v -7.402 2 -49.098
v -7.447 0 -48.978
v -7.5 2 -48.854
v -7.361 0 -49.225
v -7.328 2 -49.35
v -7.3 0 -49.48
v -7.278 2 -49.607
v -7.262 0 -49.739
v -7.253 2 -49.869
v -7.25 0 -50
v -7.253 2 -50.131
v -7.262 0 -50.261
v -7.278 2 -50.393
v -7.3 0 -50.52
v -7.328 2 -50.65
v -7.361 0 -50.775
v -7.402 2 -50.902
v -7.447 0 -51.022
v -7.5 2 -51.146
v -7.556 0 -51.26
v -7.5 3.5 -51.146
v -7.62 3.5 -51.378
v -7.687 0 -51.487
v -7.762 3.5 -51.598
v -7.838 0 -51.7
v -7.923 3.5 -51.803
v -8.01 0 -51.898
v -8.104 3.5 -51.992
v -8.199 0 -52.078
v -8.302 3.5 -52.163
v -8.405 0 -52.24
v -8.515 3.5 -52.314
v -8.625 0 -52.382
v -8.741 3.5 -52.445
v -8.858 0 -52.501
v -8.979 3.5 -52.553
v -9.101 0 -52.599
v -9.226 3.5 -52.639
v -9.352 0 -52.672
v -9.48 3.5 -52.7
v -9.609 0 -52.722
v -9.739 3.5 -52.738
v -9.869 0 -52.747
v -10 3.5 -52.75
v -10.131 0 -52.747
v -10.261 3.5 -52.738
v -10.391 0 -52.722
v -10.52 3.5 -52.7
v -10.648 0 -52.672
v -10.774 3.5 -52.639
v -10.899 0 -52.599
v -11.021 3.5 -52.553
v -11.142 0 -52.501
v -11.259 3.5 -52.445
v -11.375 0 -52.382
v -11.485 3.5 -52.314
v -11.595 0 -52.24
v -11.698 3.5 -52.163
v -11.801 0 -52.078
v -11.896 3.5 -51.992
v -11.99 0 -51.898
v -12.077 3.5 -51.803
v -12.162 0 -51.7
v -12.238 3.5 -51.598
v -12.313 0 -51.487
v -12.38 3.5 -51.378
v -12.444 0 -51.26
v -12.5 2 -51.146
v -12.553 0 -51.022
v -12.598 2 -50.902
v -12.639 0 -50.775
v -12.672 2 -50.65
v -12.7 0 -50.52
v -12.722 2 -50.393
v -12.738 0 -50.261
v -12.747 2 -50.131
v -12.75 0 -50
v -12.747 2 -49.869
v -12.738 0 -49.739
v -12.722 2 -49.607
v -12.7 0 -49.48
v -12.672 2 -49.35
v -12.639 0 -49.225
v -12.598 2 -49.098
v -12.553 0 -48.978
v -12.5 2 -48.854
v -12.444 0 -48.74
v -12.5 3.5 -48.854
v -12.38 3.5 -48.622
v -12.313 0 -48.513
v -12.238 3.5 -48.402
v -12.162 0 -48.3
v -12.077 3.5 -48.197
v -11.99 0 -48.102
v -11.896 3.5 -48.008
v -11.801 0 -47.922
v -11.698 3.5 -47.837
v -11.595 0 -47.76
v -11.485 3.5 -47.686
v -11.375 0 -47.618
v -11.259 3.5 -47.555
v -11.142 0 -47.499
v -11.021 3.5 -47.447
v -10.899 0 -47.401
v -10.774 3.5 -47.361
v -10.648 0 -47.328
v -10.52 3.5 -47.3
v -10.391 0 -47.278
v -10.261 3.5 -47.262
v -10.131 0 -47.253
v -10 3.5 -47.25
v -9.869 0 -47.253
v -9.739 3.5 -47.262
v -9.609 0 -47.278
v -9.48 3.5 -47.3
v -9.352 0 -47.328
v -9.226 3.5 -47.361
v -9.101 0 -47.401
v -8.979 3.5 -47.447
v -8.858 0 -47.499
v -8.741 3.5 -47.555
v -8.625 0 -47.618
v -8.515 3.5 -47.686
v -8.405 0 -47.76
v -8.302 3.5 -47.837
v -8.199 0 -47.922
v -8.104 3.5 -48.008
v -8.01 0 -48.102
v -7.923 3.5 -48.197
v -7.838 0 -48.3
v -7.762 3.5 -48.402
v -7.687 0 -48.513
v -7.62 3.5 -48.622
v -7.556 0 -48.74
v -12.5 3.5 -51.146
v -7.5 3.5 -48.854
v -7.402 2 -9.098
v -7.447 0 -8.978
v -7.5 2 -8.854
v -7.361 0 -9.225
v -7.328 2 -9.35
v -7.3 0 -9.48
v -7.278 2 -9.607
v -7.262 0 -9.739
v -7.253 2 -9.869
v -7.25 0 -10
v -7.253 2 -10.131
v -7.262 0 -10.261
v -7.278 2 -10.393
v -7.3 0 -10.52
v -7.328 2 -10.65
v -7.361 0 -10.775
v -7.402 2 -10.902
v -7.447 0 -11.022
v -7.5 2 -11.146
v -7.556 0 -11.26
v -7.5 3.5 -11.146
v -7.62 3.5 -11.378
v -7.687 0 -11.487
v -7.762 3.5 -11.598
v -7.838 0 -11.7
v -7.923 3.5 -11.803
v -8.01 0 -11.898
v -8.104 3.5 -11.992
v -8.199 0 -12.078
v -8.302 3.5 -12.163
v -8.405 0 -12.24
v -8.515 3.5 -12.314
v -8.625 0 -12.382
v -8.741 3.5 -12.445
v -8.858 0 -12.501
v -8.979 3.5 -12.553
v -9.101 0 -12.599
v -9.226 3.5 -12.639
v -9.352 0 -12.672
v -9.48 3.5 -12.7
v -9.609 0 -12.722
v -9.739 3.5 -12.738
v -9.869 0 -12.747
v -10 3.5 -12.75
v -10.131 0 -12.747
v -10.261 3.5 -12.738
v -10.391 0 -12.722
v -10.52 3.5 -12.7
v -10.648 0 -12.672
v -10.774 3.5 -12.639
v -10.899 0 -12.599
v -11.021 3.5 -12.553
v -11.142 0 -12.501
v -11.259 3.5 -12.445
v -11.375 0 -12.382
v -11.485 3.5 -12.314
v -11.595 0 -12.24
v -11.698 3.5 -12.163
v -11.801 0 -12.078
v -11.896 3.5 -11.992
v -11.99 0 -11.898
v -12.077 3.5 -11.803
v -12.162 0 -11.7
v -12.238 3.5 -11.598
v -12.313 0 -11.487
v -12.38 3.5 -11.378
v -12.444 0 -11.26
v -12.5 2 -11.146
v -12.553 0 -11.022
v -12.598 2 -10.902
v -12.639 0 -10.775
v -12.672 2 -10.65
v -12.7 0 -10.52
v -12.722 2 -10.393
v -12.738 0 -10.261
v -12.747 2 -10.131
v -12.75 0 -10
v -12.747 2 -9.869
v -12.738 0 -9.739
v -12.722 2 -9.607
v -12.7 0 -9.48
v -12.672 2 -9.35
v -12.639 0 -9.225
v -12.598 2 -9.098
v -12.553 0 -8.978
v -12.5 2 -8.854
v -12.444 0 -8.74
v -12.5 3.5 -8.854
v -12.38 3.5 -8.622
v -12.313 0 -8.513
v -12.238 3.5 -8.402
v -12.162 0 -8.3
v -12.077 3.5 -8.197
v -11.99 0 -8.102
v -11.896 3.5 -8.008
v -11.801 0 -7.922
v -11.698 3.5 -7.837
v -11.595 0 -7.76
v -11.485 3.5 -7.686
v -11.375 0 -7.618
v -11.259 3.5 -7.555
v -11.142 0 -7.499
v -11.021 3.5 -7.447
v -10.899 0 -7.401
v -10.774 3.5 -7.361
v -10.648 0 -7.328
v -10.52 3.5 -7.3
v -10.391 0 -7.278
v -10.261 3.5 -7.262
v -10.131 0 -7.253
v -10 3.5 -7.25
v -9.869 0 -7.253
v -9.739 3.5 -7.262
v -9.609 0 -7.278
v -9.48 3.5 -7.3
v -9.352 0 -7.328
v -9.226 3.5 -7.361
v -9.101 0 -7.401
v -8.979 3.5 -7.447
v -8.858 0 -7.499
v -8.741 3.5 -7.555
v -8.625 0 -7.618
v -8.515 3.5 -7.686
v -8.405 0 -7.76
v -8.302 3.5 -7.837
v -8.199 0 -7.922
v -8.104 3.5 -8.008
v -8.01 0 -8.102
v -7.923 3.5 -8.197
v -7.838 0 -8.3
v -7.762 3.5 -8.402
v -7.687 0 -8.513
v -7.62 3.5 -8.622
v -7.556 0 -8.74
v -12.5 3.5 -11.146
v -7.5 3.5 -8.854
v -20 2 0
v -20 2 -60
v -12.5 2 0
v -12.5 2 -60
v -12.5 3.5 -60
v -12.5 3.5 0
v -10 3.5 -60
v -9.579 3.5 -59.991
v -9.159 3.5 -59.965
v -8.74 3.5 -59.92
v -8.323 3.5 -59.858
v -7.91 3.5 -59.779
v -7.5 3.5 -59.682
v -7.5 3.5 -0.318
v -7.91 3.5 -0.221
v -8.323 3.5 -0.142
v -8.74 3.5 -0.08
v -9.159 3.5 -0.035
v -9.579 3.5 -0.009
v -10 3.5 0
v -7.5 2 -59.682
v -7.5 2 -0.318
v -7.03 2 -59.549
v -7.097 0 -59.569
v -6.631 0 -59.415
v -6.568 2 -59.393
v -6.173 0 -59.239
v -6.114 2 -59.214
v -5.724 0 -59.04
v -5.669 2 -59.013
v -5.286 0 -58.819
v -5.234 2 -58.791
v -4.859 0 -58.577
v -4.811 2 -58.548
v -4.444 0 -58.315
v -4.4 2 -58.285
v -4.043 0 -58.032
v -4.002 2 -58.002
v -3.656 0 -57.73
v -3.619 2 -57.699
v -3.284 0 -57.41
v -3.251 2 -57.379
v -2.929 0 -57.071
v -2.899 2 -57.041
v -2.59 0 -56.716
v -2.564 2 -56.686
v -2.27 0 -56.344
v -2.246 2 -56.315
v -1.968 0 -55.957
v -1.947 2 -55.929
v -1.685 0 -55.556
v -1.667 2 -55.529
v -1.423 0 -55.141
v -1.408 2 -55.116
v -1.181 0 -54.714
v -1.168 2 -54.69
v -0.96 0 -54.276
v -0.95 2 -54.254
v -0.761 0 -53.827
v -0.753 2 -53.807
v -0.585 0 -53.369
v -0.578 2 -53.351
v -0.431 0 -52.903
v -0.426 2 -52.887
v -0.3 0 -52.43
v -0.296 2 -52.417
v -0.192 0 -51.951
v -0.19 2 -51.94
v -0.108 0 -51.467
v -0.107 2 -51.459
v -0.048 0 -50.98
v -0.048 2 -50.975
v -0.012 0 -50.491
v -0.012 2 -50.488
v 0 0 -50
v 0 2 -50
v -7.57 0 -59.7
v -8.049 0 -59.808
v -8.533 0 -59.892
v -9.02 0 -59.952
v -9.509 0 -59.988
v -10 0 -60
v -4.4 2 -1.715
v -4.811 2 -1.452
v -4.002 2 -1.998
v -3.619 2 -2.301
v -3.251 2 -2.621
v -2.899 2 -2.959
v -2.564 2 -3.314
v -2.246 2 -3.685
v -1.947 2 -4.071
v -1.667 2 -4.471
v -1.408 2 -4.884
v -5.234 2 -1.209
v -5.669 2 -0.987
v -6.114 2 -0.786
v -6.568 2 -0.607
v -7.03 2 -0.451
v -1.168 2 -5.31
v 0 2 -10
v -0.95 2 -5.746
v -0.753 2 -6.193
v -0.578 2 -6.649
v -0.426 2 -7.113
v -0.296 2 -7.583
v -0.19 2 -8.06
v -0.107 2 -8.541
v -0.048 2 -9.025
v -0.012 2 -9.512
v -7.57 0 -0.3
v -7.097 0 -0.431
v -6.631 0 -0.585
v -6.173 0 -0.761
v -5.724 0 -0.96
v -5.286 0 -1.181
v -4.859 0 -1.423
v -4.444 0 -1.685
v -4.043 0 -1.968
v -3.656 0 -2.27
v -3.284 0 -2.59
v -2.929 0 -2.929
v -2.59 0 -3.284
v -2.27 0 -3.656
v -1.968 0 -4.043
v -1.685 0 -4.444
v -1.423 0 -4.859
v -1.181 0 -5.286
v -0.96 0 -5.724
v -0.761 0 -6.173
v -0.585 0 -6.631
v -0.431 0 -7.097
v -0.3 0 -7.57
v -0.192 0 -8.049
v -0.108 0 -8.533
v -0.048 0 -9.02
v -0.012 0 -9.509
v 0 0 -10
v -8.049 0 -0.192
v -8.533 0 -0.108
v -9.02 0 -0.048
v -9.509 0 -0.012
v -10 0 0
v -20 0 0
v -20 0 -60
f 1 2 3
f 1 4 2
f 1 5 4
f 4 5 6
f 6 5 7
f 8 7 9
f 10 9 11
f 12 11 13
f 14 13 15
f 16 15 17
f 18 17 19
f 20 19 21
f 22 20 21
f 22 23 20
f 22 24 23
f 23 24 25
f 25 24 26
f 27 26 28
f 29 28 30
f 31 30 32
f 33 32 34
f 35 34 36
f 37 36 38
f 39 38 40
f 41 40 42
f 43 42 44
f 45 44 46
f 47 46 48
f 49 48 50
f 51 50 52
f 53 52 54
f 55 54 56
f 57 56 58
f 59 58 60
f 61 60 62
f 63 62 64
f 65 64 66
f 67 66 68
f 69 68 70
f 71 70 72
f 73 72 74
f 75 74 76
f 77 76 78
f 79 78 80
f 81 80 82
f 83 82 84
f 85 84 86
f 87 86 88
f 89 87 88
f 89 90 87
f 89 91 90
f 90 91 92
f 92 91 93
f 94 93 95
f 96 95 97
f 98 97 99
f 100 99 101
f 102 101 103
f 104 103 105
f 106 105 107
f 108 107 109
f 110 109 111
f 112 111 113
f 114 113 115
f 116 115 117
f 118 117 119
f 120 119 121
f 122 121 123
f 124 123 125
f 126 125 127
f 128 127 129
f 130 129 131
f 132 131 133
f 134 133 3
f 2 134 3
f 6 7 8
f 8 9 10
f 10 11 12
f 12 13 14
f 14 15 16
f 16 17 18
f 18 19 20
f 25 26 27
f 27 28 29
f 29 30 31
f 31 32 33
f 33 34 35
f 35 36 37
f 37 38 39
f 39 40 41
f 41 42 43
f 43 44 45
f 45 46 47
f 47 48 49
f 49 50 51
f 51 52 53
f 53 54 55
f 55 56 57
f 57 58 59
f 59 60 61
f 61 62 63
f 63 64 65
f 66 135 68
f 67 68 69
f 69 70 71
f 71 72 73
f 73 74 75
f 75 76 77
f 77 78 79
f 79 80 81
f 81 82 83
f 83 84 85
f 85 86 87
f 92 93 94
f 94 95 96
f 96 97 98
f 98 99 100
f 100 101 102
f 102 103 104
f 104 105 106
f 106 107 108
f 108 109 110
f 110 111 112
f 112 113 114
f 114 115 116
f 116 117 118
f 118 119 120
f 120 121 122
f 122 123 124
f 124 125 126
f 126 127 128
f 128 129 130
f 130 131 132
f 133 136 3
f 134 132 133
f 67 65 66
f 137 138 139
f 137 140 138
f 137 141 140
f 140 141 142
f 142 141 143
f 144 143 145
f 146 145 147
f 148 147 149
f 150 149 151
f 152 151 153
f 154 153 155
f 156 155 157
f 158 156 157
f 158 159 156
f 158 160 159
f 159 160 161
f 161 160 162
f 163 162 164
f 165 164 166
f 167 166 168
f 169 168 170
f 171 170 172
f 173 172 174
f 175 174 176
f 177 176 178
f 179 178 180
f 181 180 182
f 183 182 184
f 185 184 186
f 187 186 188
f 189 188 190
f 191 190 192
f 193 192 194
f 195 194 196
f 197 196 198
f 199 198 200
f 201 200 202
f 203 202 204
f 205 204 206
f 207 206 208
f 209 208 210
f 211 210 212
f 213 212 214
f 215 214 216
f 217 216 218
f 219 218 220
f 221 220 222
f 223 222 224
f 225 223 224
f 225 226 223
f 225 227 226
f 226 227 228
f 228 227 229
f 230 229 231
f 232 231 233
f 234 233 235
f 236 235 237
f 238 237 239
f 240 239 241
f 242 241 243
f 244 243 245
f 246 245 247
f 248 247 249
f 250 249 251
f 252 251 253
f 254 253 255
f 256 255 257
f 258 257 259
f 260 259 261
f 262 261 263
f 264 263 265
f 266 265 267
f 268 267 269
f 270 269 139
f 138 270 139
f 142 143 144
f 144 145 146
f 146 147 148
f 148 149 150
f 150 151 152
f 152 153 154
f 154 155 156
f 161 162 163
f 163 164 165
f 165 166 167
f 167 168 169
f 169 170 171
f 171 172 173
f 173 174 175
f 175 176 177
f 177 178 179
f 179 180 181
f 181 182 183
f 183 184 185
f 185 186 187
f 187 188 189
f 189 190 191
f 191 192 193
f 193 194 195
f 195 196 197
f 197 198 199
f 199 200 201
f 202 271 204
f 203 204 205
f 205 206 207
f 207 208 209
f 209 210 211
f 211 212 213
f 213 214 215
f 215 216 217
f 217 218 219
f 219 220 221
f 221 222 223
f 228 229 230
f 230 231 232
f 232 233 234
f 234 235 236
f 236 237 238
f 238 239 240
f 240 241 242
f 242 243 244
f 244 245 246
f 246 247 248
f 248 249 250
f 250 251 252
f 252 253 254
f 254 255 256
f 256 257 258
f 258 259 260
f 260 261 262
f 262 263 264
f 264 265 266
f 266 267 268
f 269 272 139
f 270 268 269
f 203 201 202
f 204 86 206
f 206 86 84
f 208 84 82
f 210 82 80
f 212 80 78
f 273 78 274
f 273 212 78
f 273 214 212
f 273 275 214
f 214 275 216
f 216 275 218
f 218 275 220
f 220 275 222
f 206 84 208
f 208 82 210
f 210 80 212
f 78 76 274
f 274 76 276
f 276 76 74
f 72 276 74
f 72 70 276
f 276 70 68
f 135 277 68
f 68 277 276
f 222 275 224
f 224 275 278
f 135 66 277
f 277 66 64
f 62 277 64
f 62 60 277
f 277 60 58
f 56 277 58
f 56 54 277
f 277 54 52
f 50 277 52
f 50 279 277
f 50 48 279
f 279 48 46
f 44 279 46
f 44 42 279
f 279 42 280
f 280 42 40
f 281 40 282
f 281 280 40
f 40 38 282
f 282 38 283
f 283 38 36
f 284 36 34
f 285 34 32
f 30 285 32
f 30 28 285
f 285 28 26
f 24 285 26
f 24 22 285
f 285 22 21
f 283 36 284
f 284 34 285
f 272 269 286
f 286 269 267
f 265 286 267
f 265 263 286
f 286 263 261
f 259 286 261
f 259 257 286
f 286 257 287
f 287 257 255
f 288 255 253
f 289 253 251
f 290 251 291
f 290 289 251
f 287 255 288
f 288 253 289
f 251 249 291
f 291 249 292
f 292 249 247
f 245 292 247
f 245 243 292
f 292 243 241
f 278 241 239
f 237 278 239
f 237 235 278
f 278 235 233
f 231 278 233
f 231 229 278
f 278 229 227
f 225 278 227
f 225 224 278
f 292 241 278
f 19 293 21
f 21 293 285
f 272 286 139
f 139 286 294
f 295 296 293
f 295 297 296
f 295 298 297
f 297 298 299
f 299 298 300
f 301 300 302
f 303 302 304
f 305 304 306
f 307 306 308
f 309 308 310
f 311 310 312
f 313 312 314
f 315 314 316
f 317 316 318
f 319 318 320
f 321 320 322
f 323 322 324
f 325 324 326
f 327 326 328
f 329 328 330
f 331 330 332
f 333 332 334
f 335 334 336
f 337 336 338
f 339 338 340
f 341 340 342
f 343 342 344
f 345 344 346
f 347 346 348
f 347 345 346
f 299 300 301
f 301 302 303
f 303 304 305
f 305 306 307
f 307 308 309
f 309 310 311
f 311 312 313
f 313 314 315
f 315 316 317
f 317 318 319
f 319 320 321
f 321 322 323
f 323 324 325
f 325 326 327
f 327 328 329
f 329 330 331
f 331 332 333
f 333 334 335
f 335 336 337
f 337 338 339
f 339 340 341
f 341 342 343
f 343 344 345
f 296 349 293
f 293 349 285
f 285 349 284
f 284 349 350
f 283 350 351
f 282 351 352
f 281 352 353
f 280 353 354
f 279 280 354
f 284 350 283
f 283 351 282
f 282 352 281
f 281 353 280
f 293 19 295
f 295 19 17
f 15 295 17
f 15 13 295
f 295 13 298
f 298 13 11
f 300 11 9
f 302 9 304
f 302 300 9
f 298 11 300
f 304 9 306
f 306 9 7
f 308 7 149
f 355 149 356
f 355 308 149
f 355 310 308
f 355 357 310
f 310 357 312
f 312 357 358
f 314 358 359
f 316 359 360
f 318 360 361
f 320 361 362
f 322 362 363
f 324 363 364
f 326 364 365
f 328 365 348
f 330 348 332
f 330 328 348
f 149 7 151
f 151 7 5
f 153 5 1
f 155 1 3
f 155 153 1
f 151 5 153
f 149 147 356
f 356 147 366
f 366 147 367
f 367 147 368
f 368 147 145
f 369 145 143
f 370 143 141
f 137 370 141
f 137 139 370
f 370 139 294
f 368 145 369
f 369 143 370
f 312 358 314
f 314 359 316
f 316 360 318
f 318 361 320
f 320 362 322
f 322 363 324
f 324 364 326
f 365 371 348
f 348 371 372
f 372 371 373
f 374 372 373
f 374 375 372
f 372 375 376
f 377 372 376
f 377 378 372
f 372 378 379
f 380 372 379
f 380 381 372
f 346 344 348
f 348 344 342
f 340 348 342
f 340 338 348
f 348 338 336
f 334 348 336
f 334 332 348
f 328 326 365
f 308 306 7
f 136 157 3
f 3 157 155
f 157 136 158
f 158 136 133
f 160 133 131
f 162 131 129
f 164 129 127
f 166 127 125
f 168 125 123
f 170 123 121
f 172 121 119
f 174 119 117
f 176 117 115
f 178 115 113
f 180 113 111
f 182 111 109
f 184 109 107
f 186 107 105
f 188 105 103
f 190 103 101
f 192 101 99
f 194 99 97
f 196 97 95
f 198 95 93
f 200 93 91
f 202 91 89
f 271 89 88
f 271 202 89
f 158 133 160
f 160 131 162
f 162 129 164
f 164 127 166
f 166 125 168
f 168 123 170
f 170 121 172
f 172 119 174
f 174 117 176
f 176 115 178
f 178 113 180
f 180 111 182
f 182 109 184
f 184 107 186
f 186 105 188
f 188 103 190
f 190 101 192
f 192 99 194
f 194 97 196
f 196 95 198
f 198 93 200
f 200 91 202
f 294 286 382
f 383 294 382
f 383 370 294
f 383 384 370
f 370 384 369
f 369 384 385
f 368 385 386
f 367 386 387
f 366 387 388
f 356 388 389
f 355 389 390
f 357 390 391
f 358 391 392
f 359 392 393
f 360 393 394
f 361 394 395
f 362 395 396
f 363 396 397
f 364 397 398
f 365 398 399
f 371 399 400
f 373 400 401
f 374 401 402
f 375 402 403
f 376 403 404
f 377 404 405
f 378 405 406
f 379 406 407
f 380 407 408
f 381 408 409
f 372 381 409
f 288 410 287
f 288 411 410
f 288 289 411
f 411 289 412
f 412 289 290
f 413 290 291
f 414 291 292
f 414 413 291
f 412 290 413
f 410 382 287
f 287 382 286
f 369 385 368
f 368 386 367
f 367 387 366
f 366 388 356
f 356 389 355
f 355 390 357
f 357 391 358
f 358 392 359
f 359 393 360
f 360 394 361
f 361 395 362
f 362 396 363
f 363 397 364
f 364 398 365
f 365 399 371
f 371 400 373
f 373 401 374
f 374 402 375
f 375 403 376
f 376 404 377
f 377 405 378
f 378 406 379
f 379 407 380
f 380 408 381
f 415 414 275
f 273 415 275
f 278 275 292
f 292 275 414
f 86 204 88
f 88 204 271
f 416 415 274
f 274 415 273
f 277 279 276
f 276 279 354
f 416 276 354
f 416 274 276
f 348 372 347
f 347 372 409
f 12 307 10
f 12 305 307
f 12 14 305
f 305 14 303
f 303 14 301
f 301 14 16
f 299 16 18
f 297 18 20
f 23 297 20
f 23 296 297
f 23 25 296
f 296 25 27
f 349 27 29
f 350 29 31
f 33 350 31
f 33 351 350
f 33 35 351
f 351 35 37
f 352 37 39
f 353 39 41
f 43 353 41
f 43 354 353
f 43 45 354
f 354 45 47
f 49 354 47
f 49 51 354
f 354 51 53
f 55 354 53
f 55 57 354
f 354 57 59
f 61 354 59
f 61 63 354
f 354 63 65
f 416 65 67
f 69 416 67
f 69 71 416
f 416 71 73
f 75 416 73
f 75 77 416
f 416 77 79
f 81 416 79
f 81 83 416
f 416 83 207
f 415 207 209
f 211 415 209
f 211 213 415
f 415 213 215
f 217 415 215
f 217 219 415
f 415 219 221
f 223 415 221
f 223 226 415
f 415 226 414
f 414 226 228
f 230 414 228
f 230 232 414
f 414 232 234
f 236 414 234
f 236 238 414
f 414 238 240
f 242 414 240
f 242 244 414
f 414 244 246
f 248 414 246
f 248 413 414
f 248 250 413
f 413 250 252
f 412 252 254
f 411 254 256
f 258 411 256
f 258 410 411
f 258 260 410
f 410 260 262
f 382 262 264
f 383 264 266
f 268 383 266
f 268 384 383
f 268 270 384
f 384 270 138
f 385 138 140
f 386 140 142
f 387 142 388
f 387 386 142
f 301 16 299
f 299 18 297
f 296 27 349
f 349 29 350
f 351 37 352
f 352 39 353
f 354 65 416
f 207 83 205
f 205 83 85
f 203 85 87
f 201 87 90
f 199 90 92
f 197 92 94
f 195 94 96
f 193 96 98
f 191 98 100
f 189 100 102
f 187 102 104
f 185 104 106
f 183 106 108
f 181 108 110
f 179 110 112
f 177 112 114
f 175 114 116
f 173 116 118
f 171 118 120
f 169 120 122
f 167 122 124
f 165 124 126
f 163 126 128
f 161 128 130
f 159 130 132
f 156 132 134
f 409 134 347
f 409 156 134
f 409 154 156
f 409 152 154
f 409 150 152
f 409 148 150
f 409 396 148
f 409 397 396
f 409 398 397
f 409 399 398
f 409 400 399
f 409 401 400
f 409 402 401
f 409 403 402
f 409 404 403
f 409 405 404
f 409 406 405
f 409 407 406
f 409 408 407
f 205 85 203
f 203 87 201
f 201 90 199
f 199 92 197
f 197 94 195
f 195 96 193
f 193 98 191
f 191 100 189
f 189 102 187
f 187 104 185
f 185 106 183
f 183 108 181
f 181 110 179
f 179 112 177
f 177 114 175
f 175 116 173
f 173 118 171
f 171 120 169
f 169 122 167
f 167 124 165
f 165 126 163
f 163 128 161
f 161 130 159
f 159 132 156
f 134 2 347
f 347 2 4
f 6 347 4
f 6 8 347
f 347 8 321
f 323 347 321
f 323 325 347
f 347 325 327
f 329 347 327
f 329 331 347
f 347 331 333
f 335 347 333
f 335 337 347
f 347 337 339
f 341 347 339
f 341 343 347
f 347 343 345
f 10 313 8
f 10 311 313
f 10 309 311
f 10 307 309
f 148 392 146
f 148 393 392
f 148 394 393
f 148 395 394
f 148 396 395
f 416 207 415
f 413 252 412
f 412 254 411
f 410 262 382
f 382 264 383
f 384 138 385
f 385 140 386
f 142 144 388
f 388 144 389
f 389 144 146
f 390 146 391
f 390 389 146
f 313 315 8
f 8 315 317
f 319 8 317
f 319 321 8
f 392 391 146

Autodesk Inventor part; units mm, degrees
ref_plane "YZ Plane" through (0, 0, 0) normal (1, 0, 0) x (0, 1, 0)
ref_plane "XZ Plane" through (0, 0, 0) normal (0, 1, 0) x (-1, 0, 0)
ref_plane "XY Plane" through (0, 0, 0) normal (0, 0, 1) x (1, 0, 0)
sketch "Sketch1" plane through (0, 0, 0) normal (0, 1, 0) x (-1, 0, 0)
  line L0 (0, 0) -> (20, 0)
  line L1 (20, 0) -> (20, -60)
  line L2 (20, -60) -> (0, -60)
  line L3 (0, -60) -> (0, 0)
  dimension "d0" = 20
  dimension "d1" = 60
extrude "Extrusion1" add sketch "Sketch1" along normal blind 2
sketch "Sketch2" plane through (0, 2, 0) normal (0, 1, 0) x (1, 0, 0)
  line L0 (0, 60) -> (-20, 60) projected
  line L1 (-7.5, 0) -> (-12.5, 0)
  line L2 (-12.5, 0) -> (-12.5, 60)
  line L3 (-12.5, 60) -> (-7.5, 60)
  line L4 (-7.5, 60) -> (-7.5, 0)
  line L5 (-7.5, 0) -> (-12.5, 60) construction
  line L6 (-12.5, 0) -> (-7.5, 60) construction
  point P0 (0, 0)
  point P1 (-10, 30)
  dimension "d4" = 5
extrude "Extrusion2" add sketch "Sketch2" along normal blind 1.5
fillet "Fillet1" radius 10 2 edges at (0, 1, 0) (0, 1, -60)
sketch "Sketch3" plane through (0, 0, 0) normal (0, -1, 0) x (1, 0, 0)
  point P0 (0, 0)
  point P1 (-10, -50)
  point P2 (-10, -10)
hole "Hole1" at (-10, 0, -50) at (-10, 0, -10) direction (0, 1, 0) diameter 5.5 end through all
properties part number "gap filler y axis"
